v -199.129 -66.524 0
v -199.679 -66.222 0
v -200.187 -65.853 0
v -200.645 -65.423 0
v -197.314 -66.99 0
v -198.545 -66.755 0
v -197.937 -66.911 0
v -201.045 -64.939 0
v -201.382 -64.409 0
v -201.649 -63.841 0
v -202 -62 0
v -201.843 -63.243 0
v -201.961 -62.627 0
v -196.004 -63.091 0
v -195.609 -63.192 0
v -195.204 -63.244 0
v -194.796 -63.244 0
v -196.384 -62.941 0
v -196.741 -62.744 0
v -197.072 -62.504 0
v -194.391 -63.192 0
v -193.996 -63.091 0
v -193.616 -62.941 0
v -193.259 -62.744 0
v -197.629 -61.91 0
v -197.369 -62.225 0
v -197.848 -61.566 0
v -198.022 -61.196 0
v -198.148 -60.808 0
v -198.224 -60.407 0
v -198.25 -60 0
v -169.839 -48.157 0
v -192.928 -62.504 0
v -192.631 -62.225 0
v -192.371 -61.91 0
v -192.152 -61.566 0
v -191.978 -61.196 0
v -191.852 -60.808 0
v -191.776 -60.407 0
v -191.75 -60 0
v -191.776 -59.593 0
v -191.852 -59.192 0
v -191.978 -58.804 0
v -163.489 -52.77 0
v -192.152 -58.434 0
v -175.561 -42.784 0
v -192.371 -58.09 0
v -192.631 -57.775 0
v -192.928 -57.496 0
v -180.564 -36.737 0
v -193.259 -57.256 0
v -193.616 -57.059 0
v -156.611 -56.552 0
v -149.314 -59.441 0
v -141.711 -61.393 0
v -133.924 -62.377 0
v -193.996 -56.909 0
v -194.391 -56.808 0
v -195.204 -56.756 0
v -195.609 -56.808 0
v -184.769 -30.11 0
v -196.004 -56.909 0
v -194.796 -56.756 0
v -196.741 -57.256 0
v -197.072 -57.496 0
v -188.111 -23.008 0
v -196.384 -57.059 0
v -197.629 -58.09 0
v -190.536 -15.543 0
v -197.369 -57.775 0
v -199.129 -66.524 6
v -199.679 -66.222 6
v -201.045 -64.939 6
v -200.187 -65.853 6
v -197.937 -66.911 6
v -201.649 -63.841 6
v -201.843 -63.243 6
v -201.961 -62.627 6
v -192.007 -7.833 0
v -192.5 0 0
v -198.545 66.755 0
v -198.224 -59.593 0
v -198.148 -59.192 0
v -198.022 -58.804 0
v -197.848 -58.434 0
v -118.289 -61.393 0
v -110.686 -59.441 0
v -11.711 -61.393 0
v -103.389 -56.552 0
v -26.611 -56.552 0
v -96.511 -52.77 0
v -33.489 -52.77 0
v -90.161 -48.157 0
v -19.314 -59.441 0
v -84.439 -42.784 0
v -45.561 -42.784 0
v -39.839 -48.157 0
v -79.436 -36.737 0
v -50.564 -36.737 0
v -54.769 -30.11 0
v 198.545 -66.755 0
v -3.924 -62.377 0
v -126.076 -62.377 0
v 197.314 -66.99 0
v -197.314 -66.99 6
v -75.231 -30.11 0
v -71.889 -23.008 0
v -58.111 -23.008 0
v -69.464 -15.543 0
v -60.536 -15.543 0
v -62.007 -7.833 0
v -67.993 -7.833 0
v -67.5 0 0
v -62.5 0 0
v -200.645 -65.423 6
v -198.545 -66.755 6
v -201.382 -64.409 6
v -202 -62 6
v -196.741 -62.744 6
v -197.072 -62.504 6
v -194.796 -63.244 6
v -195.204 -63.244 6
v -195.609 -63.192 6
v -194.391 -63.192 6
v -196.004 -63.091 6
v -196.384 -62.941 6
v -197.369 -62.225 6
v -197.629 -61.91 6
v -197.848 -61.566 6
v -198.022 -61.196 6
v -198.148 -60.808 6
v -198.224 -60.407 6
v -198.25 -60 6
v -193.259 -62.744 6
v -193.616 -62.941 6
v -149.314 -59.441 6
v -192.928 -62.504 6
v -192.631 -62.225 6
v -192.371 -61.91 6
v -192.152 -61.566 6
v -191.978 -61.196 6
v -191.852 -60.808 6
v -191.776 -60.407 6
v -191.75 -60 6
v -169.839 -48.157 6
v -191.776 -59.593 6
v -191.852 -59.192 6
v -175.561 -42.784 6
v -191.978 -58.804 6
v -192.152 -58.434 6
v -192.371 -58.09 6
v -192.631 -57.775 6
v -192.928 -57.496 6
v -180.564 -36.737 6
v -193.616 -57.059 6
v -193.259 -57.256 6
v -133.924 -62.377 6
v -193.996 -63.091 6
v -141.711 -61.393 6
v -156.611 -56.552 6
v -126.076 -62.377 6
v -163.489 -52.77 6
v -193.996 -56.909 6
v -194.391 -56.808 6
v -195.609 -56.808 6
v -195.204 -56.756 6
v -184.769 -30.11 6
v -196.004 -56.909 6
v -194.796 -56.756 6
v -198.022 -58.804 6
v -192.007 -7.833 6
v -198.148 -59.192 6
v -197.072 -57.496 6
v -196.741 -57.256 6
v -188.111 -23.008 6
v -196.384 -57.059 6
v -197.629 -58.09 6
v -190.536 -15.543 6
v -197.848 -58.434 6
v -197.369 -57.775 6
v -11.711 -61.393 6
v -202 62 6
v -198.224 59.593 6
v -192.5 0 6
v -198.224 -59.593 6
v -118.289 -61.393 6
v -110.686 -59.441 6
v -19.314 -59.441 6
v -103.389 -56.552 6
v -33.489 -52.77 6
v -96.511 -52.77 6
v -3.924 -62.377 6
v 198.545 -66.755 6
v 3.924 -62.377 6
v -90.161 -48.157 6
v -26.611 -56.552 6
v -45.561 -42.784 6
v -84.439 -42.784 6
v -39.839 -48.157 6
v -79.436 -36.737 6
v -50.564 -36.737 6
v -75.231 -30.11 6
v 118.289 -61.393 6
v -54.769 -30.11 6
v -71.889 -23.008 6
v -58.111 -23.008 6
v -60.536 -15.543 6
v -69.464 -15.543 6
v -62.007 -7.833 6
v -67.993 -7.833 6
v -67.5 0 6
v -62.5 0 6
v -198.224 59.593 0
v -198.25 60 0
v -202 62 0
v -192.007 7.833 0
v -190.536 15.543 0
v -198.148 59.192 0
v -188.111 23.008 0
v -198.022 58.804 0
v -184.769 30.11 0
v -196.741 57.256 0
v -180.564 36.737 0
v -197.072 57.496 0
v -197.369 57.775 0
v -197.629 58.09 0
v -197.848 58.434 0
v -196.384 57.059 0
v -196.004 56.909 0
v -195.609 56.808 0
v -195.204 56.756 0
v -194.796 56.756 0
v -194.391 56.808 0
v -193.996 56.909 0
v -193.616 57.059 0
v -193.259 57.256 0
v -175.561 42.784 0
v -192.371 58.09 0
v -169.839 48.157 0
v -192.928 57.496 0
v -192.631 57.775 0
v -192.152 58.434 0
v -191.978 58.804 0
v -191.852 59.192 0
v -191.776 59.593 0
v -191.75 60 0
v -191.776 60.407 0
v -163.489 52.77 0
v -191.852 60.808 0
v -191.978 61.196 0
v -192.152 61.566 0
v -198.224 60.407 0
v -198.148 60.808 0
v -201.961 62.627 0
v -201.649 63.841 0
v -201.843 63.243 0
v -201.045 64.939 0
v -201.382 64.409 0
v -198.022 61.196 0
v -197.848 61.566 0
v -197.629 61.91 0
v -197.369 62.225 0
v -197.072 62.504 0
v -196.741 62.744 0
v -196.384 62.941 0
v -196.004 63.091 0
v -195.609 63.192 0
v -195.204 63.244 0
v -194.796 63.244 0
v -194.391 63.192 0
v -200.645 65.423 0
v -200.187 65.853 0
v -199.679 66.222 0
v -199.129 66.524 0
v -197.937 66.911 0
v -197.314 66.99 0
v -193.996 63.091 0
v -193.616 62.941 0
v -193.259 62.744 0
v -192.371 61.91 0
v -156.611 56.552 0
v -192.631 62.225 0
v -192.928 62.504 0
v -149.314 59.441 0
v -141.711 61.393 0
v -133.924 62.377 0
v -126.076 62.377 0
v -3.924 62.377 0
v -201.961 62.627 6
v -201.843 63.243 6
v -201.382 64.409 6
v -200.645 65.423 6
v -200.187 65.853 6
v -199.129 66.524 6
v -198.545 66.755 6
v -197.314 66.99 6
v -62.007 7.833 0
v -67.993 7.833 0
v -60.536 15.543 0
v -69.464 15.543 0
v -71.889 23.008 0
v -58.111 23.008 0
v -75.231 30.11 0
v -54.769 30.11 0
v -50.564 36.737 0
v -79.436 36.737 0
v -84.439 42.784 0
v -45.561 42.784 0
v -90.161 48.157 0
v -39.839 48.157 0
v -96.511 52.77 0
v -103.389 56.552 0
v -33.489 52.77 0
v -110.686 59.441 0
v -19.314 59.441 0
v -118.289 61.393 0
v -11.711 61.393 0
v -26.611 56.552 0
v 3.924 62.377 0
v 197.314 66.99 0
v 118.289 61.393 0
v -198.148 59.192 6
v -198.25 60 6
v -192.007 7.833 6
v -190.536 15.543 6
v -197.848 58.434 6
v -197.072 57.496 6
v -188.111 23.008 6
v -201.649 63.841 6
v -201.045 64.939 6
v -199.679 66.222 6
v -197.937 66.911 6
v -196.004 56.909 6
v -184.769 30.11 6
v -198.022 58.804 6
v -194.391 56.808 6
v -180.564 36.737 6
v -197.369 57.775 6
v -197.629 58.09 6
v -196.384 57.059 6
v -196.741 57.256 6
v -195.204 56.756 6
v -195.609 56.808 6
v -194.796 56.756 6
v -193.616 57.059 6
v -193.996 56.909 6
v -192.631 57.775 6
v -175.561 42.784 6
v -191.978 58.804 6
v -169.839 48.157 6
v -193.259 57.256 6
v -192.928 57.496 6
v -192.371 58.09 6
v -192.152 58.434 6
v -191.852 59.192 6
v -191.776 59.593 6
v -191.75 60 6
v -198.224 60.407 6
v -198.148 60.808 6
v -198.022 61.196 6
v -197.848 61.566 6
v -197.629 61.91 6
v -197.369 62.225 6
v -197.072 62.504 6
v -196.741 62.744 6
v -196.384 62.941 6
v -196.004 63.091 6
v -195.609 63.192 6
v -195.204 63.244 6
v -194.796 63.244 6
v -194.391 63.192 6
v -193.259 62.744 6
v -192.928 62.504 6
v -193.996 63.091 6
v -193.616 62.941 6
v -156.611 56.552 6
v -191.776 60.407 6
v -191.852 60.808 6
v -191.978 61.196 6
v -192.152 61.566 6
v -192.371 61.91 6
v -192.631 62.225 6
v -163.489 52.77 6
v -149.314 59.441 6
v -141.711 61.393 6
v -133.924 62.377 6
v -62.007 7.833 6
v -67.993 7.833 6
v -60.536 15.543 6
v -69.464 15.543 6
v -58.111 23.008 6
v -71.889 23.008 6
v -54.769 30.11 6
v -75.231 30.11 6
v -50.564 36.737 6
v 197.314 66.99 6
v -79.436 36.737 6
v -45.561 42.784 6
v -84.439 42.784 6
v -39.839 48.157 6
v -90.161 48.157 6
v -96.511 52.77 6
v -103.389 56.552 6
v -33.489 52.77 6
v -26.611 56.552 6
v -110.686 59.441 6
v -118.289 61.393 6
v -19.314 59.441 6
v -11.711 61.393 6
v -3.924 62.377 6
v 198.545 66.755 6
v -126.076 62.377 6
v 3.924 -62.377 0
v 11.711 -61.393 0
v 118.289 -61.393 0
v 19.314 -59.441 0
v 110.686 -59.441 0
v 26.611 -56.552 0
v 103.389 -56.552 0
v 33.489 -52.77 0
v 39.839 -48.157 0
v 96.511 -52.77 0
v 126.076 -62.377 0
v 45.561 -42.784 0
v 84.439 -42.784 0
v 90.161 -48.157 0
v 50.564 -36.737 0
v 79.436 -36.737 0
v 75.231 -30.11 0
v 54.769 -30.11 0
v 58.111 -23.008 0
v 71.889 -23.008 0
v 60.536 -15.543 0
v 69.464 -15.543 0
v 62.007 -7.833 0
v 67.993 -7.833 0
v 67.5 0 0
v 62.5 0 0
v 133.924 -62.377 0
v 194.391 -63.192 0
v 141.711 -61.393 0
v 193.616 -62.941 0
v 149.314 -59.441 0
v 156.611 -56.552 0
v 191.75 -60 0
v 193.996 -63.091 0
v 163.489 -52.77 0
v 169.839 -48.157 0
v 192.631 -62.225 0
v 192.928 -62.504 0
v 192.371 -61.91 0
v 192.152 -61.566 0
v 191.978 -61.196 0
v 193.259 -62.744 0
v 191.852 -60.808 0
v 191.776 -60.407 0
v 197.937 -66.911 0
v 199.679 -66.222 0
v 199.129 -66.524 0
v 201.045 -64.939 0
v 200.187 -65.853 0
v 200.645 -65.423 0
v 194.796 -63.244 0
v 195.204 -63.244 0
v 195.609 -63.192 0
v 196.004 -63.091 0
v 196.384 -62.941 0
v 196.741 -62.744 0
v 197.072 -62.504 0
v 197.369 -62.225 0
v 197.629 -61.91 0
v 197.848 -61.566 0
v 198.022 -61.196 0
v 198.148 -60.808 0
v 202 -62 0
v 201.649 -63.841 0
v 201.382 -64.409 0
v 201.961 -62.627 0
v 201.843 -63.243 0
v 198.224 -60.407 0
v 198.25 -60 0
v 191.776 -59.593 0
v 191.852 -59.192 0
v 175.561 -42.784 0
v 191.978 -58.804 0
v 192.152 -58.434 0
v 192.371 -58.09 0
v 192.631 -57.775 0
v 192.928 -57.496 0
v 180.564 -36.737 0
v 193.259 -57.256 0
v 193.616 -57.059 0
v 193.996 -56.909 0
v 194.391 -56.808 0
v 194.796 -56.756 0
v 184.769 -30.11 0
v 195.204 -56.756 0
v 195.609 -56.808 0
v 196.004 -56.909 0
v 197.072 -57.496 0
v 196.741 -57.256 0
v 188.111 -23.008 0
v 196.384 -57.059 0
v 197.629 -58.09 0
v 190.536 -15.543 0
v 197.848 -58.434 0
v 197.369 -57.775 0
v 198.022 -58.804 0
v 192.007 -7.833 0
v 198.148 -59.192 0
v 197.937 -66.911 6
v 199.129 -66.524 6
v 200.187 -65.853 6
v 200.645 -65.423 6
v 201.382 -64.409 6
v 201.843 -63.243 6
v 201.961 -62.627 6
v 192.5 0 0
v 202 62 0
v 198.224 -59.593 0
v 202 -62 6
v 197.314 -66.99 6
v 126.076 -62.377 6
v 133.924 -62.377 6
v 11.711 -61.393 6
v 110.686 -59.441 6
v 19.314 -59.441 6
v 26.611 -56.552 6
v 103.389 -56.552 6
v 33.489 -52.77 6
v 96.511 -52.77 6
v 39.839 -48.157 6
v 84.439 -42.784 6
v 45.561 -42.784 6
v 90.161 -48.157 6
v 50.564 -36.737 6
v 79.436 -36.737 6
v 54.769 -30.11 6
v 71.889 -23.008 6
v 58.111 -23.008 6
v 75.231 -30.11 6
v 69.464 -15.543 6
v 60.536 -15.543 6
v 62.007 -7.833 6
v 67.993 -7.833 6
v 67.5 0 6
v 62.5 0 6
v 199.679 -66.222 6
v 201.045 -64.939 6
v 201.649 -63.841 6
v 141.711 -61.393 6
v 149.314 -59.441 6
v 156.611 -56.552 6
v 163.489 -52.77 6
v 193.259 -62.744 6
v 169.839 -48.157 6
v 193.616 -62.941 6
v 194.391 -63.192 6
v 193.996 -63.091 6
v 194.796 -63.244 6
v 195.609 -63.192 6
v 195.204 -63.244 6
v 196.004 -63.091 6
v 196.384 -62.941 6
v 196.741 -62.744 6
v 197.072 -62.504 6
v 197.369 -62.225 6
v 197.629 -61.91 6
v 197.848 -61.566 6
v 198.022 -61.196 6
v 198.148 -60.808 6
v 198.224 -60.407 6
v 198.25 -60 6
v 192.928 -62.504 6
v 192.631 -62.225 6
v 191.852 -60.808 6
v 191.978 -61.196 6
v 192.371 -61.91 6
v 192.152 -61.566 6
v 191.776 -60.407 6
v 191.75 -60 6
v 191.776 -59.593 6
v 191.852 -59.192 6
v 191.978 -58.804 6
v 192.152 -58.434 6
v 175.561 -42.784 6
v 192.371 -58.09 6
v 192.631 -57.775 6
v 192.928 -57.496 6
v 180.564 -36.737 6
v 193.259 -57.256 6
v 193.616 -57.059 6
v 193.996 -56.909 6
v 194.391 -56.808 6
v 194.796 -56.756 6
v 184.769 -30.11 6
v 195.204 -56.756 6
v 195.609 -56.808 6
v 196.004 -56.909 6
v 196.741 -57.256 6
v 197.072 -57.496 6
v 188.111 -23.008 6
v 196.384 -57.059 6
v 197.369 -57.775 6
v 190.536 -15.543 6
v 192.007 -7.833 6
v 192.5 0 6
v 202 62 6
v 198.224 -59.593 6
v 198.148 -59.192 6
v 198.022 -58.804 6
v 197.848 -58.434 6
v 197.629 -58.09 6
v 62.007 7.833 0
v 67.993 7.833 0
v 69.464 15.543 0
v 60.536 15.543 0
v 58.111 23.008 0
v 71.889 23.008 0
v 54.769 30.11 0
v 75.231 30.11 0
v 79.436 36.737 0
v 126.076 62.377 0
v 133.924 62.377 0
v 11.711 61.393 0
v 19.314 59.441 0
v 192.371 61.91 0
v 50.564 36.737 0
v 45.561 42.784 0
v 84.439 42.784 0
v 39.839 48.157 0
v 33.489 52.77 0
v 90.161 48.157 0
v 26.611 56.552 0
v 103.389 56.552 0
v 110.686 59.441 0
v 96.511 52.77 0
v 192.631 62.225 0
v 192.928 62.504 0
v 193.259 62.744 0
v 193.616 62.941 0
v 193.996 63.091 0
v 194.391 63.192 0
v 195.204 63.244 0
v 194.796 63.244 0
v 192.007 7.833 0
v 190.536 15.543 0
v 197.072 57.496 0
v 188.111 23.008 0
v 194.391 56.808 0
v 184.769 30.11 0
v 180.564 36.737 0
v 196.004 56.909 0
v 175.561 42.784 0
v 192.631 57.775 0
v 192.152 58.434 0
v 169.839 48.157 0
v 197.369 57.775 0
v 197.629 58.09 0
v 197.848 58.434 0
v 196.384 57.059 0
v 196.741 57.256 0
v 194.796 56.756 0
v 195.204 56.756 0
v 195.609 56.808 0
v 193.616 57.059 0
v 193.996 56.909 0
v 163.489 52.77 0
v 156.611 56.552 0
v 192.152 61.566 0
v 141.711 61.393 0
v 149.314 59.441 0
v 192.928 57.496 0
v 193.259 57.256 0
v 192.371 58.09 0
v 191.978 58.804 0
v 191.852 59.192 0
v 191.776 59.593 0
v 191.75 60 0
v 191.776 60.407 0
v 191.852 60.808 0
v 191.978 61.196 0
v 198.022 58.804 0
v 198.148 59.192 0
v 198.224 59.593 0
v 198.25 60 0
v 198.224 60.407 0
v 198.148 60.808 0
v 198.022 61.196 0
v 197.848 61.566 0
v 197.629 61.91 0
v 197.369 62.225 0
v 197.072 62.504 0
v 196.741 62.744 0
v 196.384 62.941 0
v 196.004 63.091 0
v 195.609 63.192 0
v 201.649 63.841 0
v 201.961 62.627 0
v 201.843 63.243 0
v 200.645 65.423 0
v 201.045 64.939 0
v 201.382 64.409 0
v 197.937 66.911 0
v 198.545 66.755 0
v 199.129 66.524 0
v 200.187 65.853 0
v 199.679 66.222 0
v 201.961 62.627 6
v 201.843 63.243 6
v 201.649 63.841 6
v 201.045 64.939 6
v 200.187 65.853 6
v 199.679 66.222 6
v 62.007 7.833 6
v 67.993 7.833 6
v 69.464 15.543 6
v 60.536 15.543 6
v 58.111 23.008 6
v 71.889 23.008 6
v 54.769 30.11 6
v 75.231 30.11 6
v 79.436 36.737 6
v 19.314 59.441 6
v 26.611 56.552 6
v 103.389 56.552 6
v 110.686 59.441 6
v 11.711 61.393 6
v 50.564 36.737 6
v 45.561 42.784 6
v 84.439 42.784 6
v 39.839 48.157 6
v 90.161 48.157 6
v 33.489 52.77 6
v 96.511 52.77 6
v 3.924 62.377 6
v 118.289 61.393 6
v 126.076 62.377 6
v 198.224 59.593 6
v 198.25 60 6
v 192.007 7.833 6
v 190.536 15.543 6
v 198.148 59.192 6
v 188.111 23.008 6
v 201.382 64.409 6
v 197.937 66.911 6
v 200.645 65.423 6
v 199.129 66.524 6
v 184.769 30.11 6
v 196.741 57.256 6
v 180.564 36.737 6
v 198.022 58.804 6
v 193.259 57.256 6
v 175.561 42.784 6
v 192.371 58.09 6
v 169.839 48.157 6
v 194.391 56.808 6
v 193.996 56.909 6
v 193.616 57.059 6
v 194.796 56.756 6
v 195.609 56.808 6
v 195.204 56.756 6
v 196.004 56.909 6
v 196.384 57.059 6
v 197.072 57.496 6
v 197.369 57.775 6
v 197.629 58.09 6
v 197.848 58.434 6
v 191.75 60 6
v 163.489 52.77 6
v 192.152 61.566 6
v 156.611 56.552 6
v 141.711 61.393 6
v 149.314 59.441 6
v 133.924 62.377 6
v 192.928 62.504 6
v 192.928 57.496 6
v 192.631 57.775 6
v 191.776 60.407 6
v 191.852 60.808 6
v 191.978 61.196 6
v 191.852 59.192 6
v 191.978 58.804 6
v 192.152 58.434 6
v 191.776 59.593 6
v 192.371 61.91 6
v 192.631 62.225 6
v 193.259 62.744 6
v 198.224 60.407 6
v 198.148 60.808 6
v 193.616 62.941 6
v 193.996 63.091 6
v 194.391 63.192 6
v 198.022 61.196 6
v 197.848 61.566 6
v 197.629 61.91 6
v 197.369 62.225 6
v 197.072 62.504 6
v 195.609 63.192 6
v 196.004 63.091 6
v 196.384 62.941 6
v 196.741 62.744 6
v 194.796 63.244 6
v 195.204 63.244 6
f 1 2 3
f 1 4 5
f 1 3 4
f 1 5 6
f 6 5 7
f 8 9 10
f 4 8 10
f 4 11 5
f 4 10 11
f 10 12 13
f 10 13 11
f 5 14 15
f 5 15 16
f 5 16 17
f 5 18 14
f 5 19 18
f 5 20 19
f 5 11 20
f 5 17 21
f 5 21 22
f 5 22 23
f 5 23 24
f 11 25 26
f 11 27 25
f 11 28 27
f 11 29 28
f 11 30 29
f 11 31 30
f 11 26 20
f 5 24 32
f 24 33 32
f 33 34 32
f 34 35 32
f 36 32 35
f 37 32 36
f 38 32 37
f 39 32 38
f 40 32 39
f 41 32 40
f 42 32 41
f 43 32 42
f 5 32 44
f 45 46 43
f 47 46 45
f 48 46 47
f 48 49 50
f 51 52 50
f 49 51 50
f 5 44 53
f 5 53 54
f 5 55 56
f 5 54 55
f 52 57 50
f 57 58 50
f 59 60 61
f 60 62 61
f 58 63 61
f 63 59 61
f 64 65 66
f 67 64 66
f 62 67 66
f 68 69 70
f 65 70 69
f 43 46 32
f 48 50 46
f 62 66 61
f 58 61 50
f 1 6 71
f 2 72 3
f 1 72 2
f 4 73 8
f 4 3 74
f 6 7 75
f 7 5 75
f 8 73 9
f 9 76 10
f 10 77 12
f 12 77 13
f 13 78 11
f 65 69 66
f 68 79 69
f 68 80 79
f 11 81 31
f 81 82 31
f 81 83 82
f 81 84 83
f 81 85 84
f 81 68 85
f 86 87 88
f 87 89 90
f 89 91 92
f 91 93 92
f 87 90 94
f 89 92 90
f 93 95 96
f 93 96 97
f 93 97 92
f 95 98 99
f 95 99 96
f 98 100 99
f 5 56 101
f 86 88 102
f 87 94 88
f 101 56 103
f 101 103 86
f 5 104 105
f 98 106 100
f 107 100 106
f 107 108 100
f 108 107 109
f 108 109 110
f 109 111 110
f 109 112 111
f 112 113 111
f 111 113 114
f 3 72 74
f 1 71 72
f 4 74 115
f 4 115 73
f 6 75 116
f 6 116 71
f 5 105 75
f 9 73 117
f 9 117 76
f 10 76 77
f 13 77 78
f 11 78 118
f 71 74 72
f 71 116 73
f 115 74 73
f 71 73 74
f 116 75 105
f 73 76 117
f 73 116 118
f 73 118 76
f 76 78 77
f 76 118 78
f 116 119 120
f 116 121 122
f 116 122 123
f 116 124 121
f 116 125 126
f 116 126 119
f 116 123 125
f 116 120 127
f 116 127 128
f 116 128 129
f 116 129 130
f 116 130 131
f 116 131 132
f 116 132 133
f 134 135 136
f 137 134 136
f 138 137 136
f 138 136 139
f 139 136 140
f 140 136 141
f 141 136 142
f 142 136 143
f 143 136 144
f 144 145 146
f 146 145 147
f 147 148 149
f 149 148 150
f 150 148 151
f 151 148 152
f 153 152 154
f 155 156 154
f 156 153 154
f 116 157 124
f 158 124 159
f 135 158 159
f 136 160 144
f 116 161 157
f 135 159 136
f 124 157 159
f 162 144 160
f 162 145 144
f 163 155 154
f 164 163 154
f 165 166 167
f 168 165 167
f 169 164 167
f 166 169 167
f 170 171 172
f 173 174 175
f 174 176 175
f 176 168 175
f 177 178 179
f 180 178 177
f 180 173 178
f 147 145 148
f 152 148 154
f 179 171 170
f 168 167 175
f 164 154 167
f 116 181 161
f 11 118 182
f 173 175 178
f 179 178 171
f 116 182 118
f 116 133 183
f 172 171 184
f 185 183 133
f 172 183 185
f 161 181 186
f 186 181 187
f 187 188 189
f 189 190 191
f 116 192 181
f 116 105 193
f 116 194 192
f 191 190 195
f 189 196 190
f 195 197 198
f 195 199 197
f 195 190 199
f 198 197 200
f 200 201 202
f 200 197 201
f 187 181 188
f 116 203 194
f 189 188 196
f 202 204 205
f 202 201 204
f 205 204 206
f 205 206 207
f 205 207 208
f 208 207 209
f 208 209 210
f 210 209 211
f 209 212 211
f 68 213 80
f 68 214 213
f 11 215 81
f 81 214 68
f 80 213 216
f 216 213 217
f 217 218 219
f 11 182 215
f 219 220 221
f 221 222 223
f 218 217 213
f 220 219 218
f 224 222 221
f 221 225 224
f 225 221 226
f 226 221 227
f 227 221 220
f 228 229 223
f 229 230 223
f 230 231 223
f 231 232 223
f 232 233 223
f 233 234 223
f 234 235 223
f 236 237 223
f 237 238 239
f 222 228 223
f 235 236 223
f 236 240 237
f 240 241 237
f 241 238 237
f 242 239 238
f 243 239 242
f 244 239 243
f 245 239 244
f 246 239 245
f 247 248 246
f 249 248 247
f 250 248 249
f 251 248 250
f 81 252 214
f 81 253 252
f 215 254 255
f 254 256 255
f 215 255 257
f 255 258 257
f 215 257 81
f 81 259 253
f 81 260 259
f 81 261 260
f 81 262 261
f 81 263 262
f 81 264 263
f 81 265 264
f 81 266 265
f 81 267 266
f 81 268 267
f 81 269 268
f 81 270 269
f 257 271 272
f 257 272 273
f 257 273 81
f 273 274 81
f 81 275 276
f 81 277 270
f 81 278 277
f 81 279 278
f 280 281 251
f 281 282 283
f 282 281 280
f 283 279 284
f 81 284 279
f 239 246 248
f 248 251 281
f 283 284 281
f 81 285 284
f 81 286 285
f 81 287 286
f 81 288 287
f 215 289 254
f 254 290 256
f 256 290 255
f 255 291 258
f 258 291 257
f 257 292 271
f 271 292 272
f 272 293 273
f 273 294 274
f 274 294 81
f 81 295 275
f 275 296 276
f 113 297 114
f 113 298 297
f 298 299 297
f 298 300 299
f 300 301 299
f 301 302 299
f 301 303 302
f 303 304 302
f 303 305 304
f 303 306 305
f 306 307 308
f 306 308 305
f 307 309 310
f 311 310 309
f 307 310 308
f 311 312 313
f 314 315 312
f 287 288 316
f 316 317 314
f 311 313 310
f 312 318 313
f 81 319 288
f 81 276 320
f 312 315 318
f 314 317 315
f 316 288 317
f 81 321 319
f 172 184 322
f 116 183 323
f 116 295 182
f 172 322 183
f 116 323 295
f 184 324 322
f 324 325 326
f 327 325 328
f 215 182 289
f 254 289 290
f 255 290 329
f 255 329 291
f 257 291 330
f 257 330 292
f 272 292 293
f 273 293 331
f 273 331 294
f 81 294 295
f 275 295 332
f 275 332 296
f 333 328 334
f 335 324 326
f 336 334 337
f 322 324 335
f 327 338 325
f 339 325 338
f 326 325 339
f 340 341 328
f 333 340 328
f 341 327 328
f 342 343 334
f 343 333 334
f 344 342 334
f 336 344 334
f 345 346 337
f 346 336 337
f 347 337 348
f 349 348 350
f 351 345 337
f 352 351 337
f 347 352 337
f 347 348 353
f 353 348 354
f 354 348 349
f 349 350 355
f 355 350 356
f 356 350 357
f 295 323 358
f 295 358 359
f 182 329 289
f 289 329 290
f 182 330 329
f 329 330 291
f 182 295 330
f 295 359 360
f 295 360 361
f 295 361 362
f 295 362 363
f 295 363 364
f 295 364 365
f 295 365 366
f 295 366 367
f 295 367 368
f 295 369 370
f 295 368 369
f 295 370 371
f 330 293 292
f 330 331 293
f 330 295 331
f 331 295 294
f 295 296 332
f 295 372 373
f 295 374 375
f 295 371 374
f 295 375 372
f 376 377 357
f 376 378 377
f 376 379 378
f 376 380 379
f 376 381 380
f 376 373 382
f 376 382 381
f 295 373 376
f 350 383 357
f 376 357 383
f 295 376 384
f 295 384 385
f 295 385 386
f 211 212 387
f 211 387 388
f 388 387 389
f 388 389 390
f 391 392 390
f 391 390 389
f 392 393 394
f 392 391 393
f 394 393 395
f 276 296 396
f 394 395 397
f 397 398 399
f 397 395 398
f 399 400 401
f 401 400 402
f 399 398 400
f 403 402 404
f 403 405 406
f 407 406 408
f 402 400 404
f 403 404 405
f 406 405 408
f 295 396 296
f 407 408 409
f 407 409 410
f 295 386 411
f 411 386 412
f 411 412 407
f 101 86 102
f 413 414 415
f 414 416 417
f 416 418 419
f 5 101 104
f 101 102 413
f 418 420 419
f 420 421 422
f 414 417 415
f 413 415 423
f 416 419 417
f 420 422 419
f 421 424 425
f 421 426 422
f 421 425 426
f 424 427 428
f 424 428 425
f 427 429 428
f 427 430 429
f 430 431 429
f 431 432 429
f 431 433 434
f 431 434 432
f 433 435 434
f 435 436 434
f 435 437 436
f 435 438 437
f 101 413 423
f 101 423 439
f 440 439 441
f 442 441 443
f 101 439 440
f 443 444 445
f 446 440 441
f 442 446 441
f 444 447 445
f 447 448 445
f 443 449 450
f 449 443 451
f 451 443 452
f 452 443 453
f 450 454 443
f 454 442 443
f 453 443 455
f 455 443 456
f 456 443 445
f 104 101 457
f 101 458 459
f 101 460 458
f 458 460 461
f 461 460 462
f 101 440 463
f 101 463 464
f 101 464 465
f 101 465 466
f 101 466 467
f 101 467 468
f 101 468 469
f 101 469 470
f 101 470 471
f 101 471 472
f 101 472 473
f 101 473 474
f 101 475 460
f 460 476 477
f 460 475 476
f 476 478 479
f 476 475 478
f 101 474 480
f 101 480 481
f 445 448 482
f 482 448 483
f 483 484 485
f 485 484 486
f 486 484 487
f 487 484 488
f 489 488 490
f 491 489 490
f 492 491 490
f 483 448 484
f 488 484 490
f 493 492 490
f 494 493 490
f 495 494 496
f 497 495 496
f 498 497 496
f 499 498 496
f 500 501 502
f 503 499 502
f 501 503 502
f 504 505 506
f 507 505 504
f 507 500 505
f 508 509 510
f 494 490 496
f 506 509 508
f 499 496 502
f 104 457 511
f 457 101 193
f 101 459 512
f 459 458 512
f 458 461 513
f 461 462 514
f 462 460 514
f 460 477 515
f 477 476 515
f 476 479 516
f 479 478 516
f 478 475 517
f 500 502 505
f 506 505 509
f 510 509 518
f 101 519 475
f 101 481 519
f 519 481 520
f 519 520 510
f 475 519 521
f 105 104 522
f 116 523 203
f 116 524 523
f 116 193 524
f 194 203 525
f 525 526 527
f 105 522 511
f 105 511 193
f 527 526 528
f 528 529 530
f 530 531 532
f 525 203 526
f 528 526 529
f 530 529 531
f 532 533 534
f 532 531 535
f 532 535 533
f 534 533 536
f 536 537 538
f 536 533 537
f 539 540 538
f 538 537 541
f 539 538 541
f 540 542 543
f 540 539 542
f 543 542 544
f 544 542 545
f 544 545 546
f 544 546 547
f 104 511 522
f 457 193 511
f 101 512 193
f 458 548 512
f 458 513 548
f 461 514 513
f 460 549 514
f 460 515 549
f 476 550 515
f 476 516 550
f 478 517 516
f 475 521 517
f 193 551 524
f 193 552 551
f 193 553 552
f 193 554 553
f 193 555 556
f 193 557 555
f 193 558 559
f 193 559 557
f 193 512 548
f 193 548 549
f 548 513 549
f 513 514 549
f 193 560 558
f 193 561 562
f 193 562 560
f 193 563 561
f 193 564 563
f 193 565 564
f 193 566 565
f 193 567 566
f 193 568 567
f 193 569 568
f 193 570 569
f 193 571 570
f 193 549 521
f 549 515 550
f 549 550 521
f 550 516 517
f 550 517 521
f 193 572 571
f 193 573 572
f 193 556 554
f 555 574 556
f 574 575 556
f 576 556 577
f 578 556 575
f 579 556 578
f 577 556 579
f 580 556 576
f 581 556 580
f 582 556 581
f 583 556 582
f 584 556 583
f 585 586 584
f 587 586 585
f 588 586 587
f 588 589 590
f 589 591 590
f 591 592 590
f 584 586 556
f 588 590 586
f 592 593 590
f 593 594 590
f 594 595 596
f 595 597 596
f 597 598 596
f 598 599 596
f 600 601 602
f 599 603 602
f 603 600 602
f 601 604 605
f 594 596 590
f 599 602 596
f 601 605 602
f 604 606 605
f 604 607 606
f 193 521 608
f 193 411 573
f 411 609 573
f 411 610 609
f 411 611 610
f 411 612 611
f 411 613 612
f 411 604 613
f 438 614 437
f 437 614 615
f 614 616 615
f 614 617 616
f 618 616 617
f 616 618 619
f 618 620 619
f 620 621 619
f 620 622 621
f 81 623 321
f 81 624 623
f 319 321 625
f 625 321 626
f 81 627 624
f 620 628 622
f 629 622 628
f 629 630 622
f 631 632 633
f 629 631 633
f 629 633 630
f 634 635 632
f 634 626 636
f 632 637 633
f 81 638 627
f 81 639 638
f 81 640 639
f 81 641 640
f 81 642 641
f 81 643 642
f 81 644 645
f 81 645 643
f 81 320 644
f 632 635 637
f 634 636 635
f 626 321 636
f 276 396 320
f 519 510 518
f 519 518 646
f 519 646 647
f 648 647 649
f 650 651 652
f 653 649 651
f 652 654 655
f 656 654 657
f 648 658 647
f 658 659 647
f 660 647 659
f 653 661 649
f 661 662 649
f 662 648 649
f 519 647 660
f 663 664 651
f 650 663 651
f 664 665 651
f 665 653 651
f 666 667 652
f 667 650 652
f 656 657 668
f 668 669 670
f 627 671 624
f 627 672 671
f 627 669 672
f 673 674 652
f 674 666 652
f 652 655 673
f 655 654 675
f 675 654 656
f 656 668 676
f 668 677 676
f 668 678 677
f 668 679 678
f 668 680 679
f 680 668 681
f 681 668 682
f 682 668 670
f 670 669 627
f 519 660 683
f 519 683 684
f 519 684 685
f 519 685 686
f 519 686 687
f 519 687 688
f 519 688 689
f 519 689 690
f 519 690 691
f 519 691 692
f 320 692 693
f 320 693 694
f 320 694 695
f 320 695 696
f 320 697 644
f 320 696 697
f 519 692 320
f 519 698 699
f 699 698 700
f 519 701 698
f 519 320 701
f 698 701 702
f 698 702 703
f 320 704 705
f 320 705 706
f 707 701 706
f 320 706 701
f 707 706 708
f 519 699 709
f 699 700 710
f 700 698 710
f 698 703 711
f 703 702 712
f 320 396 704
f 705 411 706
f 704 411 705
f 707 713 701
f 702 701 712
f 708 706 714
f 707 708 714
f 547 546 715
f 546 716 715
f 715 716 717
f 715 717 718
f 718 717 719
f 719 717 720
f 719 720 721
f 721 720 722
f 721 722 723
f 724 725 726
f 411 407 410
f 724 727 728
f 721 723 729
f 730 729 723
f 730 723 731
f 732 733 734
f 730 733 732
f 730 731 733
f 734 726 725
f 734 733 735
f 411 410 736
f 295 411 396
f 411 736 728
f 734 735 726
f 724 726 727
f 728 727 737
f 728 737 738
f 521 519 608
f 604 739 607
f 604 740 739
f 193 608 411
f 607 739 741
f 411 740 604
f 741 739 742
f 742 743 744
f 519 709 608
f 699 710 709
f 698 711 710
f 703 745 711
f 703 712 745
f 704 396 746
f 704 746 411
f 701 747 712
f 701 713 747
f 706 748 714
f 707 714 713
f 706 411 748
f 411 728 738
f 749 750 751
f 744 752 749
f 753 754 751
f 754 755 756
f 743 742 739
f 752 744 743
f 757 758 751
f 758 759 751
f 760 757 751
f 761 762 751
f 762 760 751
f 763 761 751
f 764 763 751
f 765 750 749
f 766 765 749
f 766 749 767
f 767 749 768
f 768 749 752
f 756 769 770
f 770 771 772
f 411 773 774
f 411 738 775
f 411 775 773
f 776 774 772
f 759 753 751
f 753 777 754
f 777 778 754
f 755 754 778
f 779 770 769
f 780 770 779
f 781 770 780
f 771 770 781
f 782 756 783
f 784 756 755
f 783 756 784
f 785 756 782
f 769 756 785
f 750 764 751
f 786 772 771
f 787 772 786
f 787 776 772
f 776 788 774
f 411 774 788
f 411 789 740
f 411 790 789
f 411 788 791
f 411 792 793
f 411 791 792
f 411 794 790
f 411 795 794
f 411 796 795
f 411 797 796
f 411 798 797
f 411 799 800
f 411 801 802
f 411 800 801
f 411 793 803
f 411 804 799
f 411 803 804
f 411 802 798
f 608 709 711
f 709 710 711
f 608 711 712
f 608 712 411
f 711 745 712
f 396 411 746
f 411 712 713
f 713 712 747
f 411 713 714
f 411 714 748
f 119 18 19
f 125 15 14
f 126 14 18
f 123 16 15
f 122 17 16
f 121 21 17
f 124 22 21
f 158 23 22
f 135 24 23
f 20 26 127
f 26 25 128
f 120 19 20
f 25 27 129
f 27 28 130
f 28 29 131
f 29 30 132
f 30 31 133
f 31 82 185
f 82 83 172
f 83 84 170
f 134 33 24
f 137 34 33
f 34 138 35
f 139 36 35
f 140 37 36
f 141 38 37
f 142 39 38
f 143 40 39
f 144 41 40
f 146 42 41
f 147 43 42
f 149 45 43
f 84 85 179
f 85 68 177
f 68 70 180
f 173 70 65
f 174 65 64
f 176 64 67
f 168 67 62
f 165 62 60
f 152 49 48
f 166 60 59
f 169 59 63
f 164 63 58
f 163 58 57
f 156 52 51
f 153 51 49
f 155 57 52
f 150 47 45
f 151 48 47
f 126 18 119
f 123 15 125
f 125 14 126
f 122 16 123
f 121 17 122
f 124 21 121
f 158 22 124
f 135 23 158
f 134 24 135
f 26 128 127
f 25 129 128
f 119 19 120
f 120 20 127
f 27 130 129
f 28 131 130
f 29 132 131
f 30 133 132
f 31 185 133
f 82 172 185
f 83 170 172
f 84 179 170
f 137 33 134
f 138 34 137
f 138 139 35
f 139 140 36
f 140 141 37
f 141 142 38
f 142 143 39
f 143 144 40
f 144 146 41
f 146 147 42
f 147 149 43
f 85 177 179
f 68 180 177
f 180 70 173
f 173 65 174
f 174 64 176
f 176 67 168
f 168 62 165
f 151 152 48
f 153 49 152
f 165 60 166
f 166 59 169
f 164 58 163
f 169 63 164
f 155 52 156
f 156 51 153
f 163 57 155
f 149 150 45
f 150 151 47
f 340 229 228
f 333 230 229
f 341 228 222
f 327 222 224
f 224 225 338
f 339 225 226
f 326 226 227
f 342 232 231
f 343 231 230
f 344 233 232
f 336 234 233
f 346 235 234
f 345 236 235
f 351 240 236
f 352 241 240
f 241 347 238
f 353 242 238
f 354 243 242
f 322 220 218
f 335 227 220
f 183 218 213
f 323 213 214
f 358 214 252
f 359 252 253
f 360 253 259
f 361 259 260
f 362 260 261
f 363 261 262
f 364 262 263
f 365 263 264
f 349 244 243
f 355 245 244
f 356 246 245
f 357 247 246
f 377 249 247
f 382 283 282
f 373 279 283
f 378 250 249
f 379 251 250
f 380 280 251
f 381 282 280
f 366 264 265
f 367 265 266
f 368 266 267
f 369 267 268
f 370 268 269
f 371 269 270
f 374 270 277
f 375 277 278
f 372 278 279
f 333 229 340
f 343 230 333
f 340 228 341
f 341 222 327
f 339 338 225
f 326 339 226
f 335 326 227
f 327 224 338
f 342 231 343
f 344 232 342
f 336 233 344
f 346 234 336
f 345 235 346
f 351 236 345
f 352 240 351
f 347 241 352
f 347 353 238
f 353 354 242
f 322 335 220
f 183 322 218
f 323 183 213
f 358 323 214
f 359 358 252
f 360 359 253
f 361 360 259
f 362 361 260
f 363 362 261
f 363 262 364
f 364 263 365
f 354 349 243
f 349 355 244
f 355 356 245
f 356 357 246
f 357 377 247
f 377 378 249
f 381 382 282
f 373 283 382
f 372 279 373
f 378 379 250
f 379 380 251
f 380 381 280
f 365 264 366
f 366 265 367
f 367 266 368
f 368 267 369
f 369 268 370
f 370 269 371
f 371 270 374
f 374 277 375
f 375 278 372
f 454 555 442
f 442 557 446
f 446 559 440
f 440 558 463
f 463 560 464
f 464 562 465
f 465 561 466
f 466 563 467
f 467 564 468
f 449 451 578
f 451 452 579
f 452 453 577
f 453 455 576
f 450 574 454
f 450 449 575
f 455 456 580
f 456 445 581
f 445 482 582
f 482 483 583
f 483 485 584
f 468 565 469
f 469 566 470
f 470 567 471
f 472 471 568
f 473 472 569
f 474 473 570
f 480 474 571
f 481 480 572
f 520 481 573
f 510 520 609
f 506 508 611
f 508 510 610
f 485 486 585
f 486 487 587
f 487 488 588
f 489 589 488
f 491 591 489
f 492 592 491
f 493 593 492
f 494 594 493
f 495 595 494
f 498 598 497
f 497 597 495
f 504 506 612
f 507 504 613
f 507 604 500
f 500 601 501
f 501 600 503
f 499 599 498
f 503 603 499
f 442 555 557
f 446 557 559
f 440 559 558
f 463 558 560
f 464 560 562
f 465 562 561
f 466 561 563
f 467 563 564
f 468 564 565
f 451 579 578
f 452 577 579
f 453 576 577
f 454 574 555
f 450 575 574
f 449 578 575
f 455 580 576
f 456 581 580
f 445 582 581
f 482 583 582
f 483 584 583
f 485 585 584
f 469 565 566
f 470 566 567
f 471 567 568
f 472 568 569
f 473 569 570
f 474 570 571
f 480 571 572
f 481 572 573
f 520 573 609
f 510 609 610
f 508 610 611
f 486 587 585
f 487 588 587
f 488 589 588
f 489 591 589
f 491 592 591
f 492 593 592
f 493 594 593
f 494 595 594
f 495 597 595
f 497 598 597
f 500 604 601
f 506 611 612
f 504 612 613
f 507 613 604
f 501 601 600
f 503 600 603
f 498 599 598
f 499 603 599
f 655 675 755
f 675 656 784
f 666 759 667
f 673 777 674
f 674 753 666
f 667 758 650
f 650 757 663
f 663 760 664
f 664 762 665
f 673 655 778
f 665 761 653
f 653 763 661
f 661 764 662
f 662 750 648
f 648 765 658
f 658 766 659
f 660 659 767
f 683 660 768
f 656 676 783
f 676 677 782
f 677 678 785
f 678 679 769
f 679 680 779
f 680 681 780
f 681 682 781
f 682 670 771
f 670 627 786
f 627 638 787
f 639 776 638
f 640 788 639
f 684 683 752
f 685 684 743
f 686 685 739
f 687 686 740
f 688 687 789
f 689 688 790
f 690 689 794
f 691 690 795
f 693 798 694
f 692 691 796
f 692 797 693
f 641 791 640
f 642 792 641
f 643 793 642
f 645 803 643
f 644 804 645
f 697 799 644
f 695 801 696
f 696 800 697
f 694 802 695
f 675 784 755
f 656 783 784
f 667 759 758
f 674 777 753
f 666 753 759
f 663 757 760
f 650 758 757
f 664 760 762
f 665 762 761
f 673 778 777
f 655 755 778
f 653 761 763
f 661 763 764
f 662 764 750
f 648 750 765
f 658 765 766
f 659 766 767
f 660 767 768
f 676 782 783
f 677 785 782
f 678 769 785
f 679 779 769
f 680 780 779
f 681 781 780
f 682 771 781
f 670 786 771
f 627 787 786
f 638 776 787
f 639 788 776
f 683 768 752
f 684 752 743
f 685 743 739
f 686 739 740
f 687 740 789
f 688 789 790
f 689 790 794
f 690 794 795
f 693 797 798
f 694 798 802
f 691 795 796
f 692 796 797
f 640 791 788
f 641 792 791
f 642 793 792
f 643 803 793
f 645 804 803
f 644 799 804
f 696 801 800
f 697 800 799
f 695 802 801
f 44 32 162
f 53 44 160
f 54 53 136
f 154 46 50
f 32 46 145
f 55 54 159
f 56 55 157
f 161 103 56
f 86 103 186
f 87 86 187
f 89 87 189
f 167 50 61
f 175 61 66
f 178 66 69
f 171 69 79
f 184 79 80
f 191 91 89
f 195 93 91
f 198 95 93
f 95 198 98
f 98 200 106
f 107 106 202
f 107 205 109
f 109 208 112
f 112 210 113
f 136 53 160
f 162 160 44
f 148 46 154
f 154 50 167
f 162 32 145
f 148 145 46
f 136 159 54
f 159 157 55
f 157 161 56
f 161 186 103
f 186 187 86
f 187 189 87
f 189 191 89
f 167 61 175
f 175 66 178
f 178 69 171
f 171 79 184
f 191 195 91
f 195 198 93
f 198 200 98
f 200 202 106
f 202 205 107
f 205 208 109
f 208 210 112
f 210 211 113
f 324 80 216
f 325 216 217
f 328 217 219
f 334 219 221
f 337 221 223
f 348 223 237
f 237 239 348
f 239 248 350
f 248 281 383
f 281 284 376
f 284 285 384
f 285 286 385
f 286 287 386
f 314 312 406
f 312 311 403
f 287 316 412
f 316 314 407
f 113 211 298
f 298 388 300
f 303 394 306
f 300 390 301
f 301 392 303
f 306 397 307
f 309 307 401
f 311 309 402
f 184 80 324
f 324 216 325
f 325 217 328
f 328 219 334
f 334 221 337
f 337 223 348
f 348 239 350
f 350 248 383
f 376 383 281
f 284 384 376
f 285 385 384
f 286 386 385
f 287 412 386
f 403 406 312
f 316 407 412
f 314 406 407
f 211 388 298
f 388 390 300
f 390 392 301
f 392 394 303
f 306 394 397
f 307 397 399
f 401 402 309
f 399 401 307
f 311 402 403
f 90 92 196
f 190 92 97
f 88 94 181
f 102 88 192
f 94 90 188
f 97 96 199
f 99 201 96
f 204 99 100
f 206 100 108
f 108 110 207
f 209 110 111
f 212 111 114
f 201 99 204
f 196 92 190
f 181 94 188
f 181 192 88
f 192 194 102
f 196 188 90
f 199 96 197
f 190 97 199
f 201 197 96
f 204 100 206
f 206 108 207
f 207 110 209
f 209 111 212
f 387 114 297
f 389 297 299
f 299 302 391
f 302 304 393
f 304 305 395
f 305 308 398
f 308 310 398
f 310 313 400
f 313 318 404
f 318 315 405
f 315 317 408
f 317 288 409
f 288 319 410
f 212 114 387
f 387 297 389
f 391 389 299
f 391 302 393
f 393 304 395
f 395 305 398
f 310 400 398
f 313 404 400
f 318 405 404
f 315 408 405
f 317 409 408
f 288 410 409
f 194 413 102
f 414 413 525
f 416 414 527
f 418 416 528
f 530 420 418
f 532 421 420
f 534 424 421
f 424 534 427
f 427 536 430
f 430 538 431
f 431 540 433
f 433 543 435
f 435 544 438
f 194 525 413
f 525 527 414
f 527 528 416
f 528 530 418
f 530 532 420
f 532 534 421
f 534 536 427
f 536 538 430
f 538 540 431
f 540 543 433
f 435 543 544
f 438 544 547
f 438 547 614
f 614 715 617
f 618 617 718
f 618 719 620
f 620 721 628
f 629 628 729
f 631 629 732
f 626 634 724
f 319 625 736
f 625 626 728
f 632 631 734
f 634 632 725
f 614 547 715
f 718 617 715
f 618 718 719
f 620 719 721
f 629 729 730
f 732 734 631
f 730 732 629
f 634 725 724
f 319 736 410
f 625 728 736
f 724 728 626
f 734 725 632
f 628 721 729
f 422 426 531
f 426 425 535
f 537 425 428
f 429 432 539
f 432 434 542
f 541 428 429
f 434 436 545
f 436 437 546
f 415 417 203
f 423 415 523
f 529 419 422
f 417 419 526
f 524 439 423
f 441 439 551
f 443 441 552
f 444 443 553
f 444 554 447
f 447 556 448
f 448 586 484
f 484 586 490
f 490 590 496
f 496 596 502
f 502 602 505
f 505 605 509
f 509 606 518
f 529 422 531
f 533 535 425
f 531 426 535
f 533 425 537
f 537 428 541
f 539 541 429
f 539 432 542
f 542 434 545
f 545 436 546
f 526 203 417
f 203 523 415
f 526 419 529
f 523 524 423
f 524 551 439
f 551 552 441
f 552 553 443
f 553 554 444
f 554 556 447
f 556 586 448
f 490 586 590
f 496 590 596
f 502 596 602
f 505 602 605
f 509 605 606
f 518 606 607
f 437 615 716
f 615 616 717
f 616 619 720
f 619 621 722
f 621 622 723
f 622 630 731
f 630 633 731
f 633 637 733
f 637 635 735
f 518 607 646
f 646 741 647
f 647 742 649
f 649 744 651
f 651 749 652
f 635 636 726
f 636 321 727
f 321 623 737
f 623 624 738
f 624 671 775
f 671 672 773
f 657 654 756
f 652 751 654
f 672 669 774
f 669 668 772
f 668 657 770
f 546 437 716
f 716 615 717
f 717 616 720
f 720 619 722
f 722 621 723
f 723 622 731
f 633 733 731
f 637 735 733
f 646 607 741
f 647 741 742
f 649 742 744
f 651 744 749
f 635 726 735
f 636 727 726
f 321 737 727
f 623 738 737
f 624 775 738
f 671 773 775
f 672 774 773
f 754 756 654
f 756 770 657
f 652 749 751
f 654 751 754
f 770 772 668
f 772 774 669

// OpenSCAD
$fn = 50;

difference() {
	union() {
		hull() {
			translate(v = [-197.0, 62.0, 0]) {
				cylinder(h = 6, r = 5);
			}
			translate(v = [197.0, 62.0, 0]) {
				cylinder(h = 6, r = 5);
			}
			translate(v = [-197.0, -62.0, 0]) {
				cylinder(h = 6, r = 5);
			}
			translate(v = [197.0, -62.0, 0]) {
				cylinder(h = 6, r = 5);
			}
		}
	}
	union() {
		translate(v = [-195.0, -60.0, -100.0]) {
			cylinder(h = 200, r = 3.25);
		}
		translate(v = [-195.0, 60.0, -100.0]) {
			cylinder(h = 200, r = 3.25);
		}
		translate(v = [195.0, -60.0, -100.0]) {
			cylinder(h = 200, r = 3.25);
		}
		translate(v = [195.0, 60.0, -100.0]) {
			cylinder(h = 200, r = 3.25);
		}
		translate(v = [-195.0, -60.0, -100.0]) {
			cylinder(h = 200, r = 1.8);
		}
		translate(v = [-195.0, 60.0, -100.0]) {
			cylinder(h = 200, r = 1.8);
		}
		translate(v = [195.0, -60.0, -100.0]) {
			cylinder(h = 200, r = 1.8);
		}
		translate(v = [195.0, 60.0, -100.0]) {
			cylinder(h = 200, r = 1.8);
		}
		translate(v = [-130.0, 0, 0.0]) {
			cylinder(h = 6, r = 62.5);
		}
		cylinder(h = 6, r = 62.5);
		translate(v = [130.0, 0, 0.0]) {
			cylinder(h = 6, r = 62.5);
		}
	}
}
